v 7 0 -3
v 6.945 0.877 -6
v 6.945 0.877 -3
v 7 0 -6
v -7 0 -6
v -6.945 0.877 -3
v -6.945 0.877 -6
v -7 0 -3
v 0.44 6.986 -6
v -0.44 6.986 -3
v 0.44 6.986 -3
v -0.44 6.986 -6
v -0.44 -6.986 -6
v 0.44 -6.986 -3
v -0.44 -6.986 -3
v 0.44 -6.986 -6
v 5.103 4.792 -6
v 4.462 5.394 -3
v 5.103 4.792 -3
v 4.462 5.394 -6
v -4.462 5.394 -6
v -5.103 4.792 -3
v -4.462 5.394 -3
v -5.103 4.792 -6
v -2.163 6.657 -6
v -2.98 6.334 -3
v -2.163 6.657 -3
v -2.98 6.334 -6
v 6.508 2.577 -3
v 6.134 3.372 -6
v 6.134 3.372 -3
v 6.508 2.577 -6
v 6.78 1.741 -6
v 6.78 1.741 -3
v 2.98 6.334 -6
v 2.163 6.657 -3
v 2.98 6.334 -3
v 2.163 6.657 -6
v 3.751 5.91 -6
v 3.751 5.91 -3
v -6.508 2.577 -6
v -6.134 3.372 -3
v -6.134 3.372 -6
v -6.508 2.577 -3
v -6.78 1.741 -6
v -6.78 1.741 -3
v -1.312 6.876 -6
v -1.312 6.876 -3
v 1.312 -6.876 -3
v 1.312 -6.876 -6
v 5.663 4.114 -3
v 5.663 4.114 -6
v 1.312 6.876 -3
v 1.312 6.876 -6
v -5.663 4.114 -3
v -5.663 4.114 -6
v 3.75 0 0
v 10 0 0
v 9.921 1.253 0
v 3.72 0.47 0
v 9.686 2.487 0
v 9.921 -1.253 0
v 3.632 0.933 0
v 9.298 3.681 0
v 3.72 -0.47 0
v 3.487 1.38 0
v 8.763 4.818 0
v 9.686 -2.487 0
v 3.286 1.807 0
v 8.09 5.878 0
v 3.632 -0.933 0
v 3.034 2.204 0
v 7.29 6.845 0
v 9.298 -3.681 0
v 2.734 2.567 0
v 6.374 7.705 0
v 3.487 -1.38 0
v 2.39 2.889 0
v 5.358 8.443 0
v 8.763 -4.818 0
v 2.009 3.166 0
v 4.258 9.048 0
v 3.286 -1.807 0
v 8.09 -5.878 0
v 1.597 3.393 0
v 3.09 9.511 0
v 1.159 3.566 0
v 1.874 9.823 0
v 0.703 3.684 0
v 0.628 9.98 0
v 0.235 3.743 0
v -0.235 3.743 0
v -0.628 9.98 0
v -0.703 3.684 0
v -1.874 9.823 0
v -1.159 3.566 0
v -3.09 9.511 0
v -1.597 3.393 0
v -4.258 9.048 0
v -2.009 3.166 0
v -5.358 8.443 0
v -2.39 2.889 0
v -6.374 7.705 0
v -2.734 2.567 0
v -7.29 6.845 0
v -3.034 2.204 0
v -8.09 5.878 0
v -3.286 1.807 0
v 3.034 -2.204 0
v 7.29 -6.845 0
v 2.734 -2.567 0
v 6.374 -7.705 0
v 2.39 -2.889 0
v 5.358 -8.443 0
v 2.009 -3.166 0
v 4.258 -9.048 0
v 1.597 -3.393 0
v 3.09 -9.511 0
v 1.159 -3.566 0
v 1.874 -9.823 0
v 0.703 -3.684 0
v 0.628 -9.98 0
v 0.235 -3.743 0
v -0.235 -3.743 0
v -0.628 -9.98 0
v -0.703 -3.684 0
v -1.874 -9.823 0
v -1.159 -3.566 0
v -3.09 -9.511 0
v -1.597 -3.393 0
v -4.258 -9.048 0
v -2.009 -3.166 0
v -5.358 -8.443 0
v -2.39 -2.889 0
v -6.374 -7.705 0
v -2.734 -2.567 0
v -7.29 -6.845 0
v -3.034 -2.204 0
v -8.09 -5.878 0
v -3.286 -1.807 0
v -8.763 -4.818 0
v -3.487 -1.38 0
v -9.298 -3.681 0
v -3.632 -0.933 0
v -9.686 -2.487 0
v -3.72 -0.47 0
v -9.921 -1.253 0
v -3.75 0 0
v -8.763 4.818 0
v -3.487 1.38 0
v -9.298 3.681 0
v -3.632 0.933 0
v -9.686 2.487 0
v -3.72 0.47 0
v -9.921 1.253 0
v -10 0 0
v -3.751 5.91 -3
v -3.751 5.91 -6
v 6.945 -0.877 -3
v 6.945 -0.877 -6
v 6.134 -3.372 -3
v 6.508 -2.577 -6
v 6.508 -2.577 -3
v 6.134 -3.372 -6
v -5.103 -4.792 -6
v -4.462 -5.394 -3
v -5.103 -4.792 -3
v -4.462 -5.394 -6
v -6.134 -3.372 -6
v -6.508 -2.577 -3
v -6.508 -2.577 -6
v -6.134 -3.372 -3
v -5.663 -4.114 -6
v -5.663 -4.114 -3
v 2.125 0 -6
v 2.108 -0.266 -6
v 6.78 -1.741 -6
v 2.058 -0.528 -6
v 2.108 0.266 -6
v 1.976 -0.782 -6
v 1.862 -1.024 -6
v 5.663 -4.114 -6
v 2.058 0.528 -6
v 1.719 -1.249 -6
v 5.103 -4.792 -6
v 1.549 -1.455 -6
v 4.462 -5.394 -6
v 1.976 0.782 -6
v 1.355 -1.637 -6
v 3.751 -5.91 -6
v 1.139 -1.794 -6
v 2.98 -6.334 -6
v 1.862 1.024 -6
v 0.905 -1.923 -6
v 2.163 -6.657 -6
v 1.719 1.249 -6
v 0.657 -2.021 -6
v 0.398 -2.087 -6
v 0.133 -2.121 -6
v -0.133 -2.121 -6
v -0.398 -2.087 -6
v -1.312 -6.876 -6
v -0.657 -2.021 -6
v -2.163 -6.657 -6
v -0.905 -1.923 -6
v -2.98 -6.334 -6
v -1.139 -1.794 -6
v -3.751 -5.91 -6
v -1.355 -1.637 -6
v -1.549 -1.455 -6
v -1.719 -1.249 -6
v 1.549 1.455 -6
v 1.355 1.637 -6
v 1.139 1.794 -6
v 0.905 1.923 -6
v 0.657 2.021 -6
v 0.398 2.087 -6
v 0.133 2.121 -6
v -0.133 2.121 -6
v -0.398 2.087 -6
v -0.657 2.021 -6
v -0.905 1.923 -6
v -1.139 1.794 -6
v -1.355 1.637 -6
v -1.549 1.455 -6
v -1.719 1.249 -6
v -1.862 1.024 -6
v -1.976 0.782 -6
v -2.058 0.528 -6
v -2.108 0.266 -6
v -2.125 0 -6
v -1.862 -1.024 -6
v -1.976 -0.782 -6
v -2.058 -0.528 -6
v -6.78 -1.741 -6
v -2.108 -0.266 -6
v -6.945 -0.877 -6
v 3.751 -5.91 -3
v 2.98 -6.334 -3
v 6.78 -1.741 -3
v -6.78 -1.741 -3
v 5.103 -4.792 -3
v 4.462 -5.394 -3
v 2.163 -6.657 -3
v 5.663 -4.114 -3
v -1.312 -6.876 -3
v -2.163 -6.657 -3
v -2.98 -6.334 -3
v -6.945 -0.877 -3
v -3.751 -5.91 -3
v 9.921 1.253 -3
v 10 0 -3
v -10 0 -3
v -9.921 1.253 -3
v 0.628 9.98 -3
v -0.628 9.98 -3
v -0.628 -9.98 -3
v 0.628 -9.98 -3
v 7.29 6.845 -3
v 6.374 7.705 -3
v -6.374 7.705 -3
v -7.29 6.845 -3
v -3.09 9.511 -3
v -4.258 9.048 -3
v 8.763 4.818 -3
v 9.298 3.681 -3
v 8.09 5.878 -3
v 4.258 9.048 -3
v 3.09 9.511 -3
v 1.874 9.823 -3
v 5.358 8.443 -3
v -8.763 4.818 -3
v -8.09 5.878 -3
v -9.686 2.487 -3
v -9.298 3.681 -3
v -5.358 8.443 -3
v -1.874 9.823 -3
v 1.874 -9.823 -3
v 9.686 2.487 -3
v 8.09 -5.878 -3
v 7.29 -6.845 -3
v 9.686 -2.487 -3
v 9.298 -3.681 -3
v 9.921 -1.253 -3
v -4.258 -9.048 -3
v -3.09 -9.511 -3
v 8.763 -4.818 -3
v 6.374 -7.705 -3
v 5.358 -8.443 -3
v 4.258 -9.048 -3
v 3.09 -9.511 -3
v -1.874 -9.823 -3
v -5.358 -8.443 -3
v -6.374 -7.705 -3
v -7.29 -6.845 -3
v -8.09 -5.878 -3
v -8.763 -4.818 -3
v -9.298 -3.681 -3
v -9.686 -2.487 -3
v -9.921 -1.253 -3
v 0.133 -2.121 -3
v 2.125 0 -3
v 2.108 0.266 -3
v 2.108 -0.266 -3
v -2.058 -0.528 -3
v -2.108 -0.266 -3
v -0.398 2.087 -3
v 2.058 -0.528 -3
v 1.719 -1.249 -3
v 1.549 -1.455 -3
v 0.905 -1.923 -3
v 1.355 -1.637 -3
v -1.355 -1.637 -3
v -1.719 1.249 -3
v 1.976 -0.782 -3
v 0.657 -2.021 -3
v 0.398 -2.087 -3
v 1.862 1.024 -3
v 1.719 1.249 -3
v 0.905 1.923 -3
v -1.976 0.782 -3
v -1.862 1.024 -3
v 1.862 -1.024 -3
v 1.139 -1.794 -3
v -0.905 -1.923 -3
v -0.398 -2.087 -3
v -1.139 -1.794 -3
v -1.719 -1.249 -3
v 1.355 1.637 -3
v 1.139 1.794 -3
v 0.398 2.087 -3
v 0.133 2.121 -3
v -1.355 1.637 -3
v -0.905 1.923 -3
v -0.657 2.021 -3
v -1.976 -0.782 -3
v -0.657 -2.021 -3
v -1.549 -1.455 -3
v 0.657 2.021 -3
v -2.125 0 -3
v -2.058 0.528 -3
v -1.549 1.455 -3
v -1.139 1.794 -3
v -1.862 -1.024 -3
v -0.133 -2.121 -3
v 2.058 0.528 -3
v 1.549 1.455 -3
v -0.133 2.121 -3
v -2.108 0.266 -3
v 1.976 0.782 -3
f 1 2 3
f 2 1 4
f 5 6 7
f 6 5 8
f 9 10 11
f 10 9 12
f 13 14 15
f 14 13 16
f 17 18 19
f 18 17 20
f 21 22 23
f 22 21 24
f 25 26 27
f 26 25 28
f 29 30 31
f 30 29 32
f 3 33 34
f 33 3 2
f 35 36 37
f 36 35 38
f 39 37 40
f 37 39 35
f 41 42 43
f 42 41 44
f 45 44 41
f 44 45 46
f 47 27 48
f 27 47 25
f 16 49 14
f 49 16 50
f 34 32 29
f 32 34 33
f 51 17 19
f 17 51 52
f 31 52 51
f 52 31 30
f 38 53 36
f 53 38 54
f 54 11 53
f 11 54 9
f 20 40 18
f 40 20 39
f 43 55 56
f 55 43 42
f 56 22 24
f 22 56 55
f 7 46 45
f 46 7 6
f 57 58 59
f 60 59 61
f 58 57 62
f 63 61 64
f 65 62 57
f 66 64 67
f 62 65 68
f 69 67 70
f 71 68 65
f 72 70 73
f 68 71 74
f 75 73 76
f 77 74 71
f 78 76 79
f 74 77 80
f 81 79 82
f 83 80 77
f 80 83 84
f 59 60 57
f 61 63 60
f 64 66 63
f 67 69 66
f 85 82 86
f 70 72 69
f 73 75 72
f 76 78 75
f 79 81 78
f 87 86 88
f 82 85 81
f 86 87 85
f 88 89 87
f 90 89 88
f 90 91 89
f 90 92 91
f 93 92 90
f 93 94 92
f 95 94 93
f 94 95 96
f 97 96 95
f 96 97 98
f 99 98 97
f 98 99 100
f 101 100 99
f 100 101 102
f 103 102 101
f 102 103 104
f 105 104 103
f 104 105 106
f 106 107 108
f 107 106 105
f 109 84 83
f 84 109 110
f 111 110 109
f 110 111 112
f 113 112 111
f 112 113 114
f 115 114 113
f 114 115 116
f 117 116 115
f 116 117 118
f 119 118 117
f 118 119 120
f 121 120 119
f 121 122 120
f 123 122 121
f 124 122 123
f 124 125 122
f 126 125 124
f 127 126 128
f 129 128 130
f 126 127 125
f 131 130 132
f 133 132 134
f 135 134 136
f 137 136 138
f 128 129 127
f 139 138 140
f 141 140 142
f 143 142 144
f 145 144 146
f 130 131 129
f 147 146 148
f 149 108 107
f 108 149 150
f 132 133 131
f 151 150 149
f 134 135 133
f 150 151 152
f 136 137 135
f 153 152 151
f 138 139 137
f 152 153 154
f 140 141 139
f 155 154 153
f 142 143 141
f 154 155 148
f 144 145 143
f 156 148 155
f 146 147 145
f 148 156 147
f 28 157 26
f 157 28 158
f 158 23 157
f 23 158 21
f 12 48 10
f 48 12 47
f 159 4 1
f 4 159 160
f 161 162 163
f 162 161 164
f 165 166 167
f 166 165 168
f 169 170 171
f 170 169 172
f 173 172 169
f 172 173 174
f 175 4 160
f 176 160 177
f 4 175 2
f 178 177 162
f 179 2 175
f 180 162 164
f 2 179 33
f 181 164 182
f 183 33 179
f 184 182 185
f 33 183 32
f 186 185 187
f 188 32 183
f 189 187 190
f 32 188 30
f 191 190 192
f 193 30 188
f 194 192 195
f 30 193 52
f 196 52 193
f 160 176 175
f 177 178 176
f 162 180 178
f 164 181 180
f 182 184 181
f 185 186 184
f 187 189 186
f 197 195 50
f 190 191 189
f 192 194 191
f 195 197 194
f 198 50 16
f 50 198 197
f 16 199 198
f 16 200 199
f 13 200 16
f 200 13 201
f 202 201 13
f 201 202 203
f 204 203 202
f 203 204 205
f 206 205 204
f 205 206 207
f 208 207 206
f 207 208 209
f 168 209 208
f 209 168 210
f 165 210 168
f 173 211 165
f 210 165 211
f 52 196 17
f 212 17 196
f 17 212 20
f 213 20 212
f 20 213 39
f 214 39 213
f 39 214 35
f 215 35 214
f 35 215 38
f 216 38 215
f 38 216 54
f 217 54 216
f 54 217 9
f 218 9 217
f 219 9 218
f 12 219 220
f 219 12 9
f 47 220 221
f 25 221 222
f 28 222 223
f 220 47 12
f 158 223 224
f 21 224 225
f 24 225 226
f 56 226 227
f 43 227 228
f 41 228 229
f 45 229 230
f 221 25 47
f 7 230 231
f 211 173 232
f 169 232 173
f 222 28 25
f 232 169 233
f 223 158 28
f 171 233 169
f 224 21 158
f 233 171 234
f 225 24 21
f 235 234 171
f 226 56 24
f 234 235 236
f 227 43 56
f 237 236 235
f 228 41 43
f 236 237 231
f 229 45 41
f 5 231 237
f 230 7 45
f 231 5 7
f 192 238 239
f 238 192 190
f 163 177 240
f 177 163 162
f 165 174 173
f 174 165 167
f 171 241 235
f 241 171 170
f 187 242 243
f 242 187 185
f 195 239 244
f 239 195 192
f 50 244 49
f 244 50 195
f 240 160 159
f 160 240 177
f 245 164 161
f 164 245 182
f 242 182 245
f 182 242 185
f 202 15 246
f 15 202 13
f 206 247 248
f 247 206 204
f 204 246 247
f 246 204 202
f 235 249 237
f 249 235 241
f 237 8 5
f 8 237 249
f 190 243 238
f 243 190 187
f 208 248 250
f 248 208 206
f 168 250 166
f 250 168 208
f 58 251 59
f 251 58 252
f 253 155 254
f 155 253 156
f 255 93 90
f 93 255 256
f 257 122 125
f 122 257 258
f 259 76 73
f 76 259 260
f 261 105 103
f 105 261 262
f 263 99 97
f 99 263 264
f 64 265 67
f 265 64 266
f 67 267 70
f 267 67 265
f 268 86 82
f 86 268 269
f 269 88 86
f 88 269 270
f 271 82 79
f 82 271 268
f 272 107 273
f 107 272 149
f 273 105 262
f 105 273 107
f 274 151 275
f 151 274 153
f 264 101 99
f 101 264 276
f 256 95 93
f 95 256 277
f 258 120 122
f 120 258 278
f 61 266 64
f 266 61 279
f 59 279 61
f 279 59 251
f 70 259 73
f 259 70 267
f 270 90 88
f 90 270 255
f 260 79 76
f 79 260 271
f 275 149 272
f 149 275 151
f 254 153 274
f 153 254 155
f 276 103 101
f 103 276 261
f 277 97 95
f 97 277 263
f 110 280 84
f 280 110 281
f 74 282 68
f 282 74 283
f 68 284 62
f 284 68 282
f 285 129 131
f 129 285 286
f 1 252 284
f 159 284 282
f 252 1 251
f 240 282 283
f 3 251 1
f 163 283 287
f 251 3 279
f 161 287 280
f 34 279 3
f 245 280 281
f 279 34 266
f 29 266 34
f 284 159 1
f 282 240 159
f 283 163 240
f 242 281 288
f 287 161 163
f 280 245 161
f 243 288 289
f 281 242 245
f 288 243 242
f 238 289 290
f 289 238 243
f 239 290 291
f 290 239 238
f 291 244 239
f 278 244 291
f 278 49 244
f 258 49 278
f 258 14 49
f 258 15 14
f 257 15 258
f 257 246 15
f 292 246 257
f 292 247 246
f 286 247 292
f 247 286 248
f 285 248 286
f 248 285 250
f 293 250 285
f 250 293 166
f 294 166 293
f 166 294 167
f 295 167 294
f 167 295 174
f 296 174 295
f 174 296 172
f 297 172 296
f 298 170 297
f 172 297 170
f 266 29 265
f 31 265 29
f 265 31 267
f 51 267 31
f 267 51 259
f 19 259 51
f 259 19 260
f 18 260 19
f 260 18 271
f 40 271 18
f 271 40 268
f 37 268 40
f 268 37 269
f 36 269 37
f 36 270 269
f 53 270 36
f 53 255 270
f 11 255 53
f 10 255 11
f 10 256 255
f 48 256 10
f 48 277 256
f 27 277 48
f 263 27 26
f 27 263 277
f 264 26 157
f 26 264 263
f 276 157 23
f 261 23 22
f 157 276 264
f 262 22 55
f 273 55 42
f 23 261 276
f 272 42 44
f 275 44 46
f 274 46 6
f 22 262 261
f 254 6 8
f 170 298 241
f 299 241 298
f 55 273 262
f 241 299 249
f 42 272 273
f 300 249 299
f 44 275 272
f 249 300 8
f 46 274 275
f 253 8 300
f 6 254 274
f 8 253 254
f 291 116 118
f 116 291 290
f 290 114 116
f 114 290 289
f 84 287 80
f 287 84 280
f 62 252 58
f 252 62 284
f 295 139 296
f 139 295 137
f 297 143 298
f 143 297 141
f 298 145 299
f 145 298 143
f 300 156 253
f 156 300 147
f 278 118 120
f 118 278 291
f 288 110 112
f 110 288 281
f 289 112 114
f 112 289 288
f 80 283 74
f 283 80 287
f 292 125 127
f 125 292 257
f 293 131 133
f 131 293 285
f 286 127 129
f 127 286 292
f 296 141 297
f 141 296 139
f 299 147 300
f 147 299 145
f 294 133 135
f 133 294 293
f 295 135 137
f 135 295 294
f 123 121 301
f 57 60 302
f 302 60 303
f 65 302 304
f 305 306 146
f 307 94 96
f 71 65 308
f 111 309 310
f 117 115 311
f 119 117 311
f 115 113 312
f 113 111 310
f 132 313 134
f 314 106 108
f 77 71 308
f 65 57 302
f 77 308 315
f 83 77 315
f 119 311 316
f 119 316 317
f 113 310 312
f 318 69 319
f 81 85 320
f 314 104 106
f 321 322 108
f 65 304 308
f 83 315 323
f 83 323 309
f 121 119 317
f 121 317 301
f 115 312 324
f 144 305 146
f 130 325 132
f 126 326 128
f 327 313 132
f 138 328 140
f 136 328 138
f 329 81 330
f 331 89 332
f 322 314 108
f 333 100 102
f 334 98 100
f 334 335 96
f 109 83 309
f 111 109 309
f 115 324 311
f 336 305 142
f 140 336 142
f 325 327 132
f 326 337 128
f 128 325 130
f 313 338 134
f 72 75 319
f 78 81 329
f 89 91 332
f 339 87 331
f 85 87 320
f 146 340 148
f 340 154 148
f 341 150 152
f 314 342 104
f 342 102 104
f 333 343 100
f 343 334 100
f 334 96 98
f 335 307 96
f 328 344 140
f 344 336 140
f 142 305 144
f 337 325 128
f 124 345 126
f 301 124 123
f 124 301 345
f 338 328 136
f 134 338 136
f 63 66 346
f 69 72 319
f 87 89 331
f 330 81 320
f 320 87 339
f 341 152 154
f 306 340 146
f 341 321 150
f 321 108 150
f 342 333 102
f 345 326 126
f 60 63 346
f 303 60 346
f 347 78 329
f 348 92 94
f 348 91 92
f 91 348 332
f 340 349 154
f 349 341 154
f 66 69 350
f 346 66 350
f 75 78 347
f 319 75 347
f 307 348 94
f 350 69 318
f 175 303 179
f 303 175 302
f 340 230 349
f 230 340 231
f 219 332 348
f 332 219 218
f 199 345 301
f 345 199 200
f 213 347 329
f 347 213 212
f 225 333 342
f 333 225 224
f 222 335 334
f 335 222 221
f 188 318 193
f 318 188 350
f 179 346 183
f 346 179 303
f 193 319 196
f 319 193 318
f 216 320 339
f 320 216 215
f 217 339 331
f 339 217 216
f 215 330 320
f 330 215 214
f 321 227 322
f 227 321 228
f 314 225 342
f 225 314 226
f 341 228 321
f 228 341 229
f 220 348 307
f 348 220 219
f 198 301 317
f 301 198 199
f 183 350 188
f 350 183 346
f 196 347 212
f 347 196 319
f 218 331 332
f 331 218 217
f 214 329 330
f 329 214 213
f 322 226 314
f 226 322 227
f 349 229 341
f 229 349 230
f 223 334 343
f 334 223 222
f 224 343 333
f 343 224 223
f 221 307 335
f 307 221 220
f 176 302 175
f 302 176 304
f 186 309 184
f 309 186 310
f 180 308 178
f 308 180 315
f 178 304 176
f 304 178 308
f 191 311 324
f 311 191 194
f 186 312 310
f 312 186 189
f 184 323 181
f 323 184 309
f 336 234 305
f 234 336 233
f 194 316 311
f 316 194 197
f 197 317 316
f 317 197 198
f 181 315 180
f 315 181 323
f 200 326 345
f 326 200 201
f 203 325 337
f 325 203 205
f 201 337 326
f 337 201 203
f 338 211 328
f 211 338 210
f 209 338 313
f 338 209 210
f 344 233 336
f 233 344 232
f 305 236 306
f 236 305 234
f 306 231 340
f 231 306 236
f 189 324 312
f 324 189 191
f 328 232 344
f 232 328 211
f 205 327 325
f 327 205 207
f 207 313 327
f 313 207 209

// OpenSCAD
$fn = 50;


difference() {
	union() {
		translate(v = [0, 0, -6.0000000000]) {
			cylinder(h = 6, r = 7.0000000000);
		}
		translate(v = [0, 0, -3.0000000000]) {
			cylinder(h = 3, r = 10.0000000000);
		}
	}
	union() {
		translate(v = [0, 0, 0]) {
			rotate(a = [0, 0, 0]) {
				difference() {
					union() {
						#translate(v = [0, 0, -6.0000000000]) {
							cylinder(h = 6, r = 2.0000000000);
						}
						#translate(v = [0, 0, -3]) {
							cylinder(h = 3, r1 = 2.1250000000, r2 = 3.7500000000);
						}
						#translate(v = [0, 0, -6.0000000000]) {
							cylinder(h = 6, r = 2.1250000000);
						}
						#translate(v = [0, 0, -6.0000000000]) {
							cylinder(h = 6, r = 2.0000000000);
						}
					}
					union();
				}
			}
		}
	}
}
